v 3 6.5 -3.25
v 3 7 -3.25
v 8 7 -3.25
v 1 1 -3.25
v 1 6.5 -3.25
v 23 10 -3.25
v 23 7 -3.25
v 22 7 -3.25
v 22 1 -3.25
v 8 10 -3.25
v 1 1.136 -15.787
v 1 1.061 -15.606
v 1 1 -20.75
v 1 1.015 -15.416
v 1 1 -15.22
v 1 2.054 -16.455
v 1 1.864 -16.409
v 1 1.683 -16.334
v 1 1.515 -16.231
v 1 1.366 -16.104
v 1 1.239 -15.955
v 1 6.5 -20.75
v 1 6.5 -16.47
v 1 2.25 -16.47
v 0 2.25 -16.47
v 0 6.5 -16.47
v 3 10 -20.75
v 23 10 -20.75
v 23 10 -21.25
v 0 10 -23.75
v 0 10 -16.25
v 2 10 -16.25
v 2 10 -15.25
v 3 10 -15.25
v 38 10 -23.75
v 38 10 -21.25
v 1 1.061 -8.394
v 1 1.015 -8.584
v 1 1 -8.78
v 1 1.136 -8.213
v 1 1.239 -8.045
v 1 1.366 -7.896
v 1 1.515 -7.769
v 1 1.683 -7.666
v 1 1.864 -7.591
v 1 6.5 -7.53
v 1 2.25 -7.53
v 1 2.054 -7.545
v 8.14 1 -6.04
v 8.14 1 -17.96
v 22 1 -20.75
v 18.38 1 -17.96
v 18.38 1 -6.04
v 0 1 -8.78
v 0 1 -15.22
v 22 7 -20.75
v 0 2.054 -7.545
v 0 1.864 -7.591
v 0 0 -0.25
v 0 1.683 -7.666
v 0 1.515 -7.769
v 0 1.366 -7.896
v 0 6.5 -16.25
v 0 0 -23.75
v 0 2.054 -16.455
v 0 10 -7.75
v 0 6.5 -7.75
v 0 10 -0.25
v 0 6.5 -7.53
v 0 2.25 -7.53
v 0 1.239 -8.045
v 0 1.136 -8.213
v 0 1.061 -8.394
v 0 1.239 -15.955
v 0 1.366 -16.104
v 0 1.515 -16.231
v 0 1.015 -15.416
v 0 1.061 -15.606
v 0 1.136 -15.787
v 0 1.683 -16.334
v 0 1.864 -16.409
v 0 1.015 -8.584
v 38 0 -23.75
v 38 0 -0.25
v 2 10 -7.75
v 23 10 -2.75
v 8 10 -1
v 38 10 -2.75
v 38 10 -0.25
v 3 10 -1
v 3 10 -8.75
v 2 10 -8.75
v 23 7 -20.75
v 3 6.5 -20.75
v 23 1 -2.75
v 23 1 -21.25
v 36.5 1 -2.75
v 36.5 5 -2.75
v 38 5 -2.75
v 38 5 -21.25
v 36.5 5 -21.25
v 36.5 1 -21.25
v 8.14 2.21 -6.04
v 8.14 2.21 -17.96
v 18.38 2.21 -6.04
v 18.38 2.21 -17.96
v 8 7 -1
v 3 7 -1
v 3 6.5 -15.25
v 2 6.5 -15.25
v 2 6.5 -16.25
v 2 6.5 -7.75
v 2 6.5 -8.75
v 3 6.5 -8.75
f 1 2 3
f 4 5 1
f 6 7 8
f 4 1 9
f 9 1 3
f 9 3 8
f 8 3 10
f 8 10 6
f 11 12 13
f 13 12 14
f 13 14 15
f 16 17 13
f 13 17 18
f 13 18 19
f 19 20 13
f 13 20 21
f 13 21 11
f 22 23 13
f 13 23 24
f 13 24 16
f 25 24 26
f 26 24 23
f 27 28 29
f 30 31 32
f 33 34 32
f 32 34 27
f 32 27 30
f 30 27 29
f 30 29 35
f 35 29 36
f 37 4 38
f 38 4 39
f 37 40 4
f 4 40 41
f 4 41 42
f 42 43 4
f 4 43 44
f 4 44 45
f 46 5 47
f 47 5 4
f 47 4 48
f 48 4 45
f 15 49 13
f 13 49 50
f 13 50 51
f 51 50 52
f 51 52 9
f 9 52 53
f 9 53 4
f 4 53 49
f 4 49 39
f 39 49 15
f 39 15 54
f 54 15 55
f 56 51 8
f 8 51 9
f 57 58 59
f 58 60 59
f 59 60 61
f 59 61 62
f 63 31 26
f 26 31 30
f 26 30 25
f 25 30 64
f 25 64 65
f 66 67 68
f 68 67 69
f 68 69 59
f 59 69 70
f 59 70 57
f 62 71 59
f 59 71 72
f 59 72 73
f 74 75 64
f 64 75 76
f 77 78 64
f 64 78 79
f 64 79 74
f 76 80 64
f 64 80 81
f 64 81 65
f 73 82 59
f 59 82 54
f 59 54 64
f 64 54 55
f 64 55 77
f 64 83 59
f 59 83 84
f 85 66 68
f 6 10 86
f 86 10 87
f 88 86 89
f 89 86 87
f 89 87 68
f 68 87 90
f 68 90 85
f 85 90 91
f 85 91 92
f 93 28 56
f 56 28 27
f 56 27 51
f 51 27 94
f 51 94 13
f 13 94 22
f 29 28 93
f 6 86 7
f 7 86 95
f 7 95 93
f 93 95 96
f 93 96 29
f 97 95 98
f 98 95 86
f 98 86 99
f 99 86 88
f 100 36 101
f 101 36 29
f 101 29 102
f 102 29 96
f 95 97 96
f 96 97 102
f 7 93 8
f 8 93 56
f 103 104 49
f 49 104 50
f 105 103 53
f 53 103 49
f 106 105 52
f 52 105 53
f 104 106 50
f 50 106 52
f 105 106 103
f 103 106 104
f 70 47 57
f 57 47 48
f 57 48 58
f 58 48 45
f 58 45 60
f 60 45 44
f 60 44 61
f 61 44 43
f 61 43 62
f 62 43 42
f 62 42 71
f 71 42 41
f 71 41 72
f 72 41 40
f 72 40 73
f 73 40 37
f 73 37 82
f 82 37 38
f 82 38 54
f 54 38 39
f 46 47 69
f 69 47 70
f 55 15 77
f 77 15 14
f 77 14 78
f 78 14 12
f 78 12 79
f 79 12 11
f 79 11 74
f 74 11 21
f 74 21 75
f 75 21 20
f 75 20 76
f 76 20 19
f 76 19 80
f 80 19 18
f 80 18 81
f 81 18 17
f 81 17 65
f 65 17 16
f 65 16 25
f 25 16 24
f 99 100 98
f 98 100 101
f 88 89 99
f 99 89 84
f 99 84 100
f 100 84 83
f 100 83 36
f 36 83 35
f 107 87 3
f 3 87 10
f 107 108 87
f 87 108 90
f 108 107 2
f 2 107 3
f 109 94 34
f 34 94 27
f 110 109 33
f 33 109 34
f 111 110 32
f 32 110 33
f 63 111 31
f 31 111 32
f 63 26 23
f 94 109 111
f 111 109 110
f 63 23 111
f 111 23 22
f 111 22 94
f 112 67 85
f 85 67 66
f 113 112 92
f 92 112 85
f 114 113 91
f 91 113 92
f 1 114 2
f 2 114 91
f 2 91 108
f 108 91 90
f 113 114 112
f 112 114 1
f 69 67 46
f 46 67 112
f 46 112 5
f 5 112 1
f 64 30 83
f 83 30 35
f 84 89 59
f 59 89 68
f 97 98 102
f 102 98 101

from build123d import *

# Parameters (mm, degrees)
SKETCH1_W           = 40
SKETCH1_H           = 24
BOSS_EXTRUDE1_DEPTH = 1
SKETCH2_W           = 40
SKETCH2_H           = 24
SKETCH2_W_2         = 21
SKETCH2_H_2         = 17.5
SKETCH2_W_3         = 13
SKETCH2_H_3         = 18.5
BOSS_EXTRUDE3_DEPTH = 9
SKETCH3_W           = 1
SKETCH3_H           = 17.5
CUT_EXTRUDE2_DEPTH  = 3
SKETCH4_W           = 10.24
SKETCH4_H           = 11.92
BOSS_EXTRUDE4_DEPTH = 1.21
CUT_EXTRUDE3_DEPTH  = 2
SKETCH8_W           = 4
SKETCH8_H           = 18.5
CUT_EXTRUDE4_DEPTH  = 5
SKETCH11_W          = 24
SKETCH11_H          = 10
CUT_EXTRUDE5_DEPTH  = 2
SKETCH12_W          = 4
SKETCH12_H          = 3
CUT_EXTRUDE6_DEPTH  = 3
BOSS_EXTRUDE5_DEPTH = 3.5
SKETCH14_W          = 1
SKETCH14_H          = 2.25
CUT_EXTRUDE7_DEPTH  = 3
SKETCH15_W          = 38
SKETCH15_H          = 10
CUT_EXTRUDE8_DEPTH  = 0.25
SKETCH16_W          = 38
SKETCH16_H          = 10
CUT_EXTRUDE9_DEPTH  = 0.25
SKETCH17_W          = 18.5
SKETCH17_H          = 4
CUT_EXTRUDE10_DEPTH = 0.5


with BuildPart() as part:
    # Sketch1 → Boss-Extrude1 (new body)
    with BuildSketch(Plane(origin=(0, 0, 0), x_dir=(1, 0, 0), z_dir=(0, 1, 0))):
        with Locations((20, 12)):
            Rectangle(SKETCH1_W, SKETCH1_H)
    extrude(amount=BOSS_EXTRUDE1_DEPTH)

    # Sketch2 → Boss-Extrude3 (add)
    with BuildSketch(Plane(origin=(0, 1, 0), x_dir=(1, 0, 0), z_dir=(0, 1, 0))):
        with Locations((20, 12)):
            Rectangle(SKETCH2_W, SKETCH2_H)
        with Locations((11.5, 12)):
            Rectangle(SKETCH2_W_2, SKETCH2_H_2, mode=Mode.SUBTRACT)
        with Locations((29.5, 12)):
            Rectangle(SKETCH2_W_3, SKETCH2_H_3, mode=Mode.SUBTRACT)
    extrude(amount=BOSS_EXTRUDE3_DEPTH)

    # Sketch3 → Cut-Extrude2 (cut)
    with BuildSketch(Plane(origin=(0, 10, 0), x_dir=(1, 0, 0), z_dir=(0, 1, 0))):
        with Locations((22.5, 12)):
            Rectangle(SKETCH3_W, SKETCH3_H)
    extrude(amount=-CUT_EXTRUDE2_DEPTH, mode=Mode.SUBTRACT)

    # Sketch4 → Boss-Extrude4 (add)
    with BuildSketch(Plane(origin=(0, 1, 0), x_dir=(1, 0, 0), z_dir=(0, 1, 0))):
        with Locations((13.26, 12)):
            Rectangle(SKETCH4_W, SKETCH4_H)
    extrude(amount=BOSS_EXTRUDE4_DEPTH)

    # Sketch5 → Cut-Extrude3 (cut)
    with BuildSketch(Plane(origin=(1, 0, 0), x_dir=(0, 0, -1), z_dir=(1, 0, 0))):
        with BuildLine():
            Line((7.53, 2.25), (7.53, 2.96))
            Line((7.53, 2.96), (7.53, 10))
            Line((7.53, 10), (16.47, 10))
            Line((16.47, 10), (16.47, 2.96))
            Line((16.47, 2.96), (16.47, 2.25))
            ThreePointArc((16.47, 2.25), (16.103883476, 1.366116524), (15.22, 1))
            Line((15.22, 1), (8.78, 1))
            ThreePointArc((8.78, 1), (7.896116524, 1.366116524), (7.53, 2.25))
        make_face()
    extrude(amount=-CUT_EXTRUDE3_DEPTH, mode=Mode.SUBTRACT)

    # Sketch8 → Cut-Extrude4 (cut)
    with BuildSketch(Plane(origin=(0, 10, 0), x_dir=(1, 0, 0), z_dir=(0, 1, 0))):
        with Locations((38, 12)):
            Rectangle(SKETCH8_W, SKETCH8_H)
    extrude(amount=-CUT_EXTRUDE4_DEPTH, mode=Mode.SUBTRACT)

    # Sketch11 → Cut-Extrude5 (cut)
    with BuildSketch(Plane(origin=(40, 0, 0), x_dir=(0, 0, -1), z_dir=(1, 0, 0))):
        with Locations((12, 5)):
            Rectangle(SKETCH11_W, SKETCH11_H)
    extrude(amount=-CUT_EXTRUDE5_DEPTH, mode=Mode.SUBTRACT)

    # Sketch12 → Cut-Extrude6 (cut)
    with BuildSketch(Plane(origin=(0, 10, 0), x_dir=(1, 0, 0), z_dir=(0, 1, 0))):
        with Locations((6, 2.5)):
            Rectangle(SKETCH12_W, SKETCH12_H)
    extrude(amount=-CUT_EXTRUDE6_DEPTH, mode=Mode.SUBTRACT)

    # Sketch13 → Boss-Extrude5 (add)
    with BuildSketch(Plane(origin=(0, 10, 0), x_dir=(1, 0, 0), z_dir=(0, 1, 0))):
        Polygon((1, 16.47), (1, 20.75), (3, 20.75), (3, 15.25), (2, 15.25), (2, 16.25), (0, 16.25), (0, 16.47), align=None)
        Polygon((1, 3.25), (3, 3.25), (3, 8.75), (2, 8.75), (2, 7.75), (0, 7.75), (0, 7.53), (1, 7.53), align=None)
    extrude(amount=-BOSS_EXTRUDE5_DEPTH)

    # Sketch14 → Cut-Extrude7 (cut)
    with BuildSketch(Plane(origin=(0, 10, 0), x_dir=(1, 0, 0), z_dir=(0, 1, 0))):
        with Locations((3.5, 2.125)):
            Rectangle(SKETCH14_W, SKETCH14_H)
    extrude(amount=-CUT_EXTRUDE7_DEPTH, mode=Mode.SUBTRACT)

    # Sketch15 → Cut-Extrude8 (cut)
    with BuildSketch(Plane(origin=(0, 0, -24), x_dir=(-1, 0, 0), z_dir=(0, 0, -1))):
        with Locations((-19, 5)):
            Rectangle(SKETCH15_W, SKETCH15_H)
    extrude(amount=-CUT_EXTRUDE8_DEPTH, mode=Mode.SUBTRACT)

    # Sketch16 → Cut-Extrude9 (cut)
    with BuildSketch(Plane.XY):
        with Locations((19, 5)):
            Rectangle(SKETCH16_W, SKETCH16_H)
    extrude(amount=-CUT_EXTRUDE9_DEPTH, mode=Mode.SUBTRACT)

    # Sketch17 → Cut-Extrude10 (cut)
    with BuildSketch(Plane.ZY.offset(-36)):
        with Locations((-12, 3)):
            Rectangle(SKETCH17_W, SKETCH17_H)
    extrude(amount=-CUT_EXTRUDE10_DEPTH, mode=Mode.SUBTRACT)


solid = part.part
